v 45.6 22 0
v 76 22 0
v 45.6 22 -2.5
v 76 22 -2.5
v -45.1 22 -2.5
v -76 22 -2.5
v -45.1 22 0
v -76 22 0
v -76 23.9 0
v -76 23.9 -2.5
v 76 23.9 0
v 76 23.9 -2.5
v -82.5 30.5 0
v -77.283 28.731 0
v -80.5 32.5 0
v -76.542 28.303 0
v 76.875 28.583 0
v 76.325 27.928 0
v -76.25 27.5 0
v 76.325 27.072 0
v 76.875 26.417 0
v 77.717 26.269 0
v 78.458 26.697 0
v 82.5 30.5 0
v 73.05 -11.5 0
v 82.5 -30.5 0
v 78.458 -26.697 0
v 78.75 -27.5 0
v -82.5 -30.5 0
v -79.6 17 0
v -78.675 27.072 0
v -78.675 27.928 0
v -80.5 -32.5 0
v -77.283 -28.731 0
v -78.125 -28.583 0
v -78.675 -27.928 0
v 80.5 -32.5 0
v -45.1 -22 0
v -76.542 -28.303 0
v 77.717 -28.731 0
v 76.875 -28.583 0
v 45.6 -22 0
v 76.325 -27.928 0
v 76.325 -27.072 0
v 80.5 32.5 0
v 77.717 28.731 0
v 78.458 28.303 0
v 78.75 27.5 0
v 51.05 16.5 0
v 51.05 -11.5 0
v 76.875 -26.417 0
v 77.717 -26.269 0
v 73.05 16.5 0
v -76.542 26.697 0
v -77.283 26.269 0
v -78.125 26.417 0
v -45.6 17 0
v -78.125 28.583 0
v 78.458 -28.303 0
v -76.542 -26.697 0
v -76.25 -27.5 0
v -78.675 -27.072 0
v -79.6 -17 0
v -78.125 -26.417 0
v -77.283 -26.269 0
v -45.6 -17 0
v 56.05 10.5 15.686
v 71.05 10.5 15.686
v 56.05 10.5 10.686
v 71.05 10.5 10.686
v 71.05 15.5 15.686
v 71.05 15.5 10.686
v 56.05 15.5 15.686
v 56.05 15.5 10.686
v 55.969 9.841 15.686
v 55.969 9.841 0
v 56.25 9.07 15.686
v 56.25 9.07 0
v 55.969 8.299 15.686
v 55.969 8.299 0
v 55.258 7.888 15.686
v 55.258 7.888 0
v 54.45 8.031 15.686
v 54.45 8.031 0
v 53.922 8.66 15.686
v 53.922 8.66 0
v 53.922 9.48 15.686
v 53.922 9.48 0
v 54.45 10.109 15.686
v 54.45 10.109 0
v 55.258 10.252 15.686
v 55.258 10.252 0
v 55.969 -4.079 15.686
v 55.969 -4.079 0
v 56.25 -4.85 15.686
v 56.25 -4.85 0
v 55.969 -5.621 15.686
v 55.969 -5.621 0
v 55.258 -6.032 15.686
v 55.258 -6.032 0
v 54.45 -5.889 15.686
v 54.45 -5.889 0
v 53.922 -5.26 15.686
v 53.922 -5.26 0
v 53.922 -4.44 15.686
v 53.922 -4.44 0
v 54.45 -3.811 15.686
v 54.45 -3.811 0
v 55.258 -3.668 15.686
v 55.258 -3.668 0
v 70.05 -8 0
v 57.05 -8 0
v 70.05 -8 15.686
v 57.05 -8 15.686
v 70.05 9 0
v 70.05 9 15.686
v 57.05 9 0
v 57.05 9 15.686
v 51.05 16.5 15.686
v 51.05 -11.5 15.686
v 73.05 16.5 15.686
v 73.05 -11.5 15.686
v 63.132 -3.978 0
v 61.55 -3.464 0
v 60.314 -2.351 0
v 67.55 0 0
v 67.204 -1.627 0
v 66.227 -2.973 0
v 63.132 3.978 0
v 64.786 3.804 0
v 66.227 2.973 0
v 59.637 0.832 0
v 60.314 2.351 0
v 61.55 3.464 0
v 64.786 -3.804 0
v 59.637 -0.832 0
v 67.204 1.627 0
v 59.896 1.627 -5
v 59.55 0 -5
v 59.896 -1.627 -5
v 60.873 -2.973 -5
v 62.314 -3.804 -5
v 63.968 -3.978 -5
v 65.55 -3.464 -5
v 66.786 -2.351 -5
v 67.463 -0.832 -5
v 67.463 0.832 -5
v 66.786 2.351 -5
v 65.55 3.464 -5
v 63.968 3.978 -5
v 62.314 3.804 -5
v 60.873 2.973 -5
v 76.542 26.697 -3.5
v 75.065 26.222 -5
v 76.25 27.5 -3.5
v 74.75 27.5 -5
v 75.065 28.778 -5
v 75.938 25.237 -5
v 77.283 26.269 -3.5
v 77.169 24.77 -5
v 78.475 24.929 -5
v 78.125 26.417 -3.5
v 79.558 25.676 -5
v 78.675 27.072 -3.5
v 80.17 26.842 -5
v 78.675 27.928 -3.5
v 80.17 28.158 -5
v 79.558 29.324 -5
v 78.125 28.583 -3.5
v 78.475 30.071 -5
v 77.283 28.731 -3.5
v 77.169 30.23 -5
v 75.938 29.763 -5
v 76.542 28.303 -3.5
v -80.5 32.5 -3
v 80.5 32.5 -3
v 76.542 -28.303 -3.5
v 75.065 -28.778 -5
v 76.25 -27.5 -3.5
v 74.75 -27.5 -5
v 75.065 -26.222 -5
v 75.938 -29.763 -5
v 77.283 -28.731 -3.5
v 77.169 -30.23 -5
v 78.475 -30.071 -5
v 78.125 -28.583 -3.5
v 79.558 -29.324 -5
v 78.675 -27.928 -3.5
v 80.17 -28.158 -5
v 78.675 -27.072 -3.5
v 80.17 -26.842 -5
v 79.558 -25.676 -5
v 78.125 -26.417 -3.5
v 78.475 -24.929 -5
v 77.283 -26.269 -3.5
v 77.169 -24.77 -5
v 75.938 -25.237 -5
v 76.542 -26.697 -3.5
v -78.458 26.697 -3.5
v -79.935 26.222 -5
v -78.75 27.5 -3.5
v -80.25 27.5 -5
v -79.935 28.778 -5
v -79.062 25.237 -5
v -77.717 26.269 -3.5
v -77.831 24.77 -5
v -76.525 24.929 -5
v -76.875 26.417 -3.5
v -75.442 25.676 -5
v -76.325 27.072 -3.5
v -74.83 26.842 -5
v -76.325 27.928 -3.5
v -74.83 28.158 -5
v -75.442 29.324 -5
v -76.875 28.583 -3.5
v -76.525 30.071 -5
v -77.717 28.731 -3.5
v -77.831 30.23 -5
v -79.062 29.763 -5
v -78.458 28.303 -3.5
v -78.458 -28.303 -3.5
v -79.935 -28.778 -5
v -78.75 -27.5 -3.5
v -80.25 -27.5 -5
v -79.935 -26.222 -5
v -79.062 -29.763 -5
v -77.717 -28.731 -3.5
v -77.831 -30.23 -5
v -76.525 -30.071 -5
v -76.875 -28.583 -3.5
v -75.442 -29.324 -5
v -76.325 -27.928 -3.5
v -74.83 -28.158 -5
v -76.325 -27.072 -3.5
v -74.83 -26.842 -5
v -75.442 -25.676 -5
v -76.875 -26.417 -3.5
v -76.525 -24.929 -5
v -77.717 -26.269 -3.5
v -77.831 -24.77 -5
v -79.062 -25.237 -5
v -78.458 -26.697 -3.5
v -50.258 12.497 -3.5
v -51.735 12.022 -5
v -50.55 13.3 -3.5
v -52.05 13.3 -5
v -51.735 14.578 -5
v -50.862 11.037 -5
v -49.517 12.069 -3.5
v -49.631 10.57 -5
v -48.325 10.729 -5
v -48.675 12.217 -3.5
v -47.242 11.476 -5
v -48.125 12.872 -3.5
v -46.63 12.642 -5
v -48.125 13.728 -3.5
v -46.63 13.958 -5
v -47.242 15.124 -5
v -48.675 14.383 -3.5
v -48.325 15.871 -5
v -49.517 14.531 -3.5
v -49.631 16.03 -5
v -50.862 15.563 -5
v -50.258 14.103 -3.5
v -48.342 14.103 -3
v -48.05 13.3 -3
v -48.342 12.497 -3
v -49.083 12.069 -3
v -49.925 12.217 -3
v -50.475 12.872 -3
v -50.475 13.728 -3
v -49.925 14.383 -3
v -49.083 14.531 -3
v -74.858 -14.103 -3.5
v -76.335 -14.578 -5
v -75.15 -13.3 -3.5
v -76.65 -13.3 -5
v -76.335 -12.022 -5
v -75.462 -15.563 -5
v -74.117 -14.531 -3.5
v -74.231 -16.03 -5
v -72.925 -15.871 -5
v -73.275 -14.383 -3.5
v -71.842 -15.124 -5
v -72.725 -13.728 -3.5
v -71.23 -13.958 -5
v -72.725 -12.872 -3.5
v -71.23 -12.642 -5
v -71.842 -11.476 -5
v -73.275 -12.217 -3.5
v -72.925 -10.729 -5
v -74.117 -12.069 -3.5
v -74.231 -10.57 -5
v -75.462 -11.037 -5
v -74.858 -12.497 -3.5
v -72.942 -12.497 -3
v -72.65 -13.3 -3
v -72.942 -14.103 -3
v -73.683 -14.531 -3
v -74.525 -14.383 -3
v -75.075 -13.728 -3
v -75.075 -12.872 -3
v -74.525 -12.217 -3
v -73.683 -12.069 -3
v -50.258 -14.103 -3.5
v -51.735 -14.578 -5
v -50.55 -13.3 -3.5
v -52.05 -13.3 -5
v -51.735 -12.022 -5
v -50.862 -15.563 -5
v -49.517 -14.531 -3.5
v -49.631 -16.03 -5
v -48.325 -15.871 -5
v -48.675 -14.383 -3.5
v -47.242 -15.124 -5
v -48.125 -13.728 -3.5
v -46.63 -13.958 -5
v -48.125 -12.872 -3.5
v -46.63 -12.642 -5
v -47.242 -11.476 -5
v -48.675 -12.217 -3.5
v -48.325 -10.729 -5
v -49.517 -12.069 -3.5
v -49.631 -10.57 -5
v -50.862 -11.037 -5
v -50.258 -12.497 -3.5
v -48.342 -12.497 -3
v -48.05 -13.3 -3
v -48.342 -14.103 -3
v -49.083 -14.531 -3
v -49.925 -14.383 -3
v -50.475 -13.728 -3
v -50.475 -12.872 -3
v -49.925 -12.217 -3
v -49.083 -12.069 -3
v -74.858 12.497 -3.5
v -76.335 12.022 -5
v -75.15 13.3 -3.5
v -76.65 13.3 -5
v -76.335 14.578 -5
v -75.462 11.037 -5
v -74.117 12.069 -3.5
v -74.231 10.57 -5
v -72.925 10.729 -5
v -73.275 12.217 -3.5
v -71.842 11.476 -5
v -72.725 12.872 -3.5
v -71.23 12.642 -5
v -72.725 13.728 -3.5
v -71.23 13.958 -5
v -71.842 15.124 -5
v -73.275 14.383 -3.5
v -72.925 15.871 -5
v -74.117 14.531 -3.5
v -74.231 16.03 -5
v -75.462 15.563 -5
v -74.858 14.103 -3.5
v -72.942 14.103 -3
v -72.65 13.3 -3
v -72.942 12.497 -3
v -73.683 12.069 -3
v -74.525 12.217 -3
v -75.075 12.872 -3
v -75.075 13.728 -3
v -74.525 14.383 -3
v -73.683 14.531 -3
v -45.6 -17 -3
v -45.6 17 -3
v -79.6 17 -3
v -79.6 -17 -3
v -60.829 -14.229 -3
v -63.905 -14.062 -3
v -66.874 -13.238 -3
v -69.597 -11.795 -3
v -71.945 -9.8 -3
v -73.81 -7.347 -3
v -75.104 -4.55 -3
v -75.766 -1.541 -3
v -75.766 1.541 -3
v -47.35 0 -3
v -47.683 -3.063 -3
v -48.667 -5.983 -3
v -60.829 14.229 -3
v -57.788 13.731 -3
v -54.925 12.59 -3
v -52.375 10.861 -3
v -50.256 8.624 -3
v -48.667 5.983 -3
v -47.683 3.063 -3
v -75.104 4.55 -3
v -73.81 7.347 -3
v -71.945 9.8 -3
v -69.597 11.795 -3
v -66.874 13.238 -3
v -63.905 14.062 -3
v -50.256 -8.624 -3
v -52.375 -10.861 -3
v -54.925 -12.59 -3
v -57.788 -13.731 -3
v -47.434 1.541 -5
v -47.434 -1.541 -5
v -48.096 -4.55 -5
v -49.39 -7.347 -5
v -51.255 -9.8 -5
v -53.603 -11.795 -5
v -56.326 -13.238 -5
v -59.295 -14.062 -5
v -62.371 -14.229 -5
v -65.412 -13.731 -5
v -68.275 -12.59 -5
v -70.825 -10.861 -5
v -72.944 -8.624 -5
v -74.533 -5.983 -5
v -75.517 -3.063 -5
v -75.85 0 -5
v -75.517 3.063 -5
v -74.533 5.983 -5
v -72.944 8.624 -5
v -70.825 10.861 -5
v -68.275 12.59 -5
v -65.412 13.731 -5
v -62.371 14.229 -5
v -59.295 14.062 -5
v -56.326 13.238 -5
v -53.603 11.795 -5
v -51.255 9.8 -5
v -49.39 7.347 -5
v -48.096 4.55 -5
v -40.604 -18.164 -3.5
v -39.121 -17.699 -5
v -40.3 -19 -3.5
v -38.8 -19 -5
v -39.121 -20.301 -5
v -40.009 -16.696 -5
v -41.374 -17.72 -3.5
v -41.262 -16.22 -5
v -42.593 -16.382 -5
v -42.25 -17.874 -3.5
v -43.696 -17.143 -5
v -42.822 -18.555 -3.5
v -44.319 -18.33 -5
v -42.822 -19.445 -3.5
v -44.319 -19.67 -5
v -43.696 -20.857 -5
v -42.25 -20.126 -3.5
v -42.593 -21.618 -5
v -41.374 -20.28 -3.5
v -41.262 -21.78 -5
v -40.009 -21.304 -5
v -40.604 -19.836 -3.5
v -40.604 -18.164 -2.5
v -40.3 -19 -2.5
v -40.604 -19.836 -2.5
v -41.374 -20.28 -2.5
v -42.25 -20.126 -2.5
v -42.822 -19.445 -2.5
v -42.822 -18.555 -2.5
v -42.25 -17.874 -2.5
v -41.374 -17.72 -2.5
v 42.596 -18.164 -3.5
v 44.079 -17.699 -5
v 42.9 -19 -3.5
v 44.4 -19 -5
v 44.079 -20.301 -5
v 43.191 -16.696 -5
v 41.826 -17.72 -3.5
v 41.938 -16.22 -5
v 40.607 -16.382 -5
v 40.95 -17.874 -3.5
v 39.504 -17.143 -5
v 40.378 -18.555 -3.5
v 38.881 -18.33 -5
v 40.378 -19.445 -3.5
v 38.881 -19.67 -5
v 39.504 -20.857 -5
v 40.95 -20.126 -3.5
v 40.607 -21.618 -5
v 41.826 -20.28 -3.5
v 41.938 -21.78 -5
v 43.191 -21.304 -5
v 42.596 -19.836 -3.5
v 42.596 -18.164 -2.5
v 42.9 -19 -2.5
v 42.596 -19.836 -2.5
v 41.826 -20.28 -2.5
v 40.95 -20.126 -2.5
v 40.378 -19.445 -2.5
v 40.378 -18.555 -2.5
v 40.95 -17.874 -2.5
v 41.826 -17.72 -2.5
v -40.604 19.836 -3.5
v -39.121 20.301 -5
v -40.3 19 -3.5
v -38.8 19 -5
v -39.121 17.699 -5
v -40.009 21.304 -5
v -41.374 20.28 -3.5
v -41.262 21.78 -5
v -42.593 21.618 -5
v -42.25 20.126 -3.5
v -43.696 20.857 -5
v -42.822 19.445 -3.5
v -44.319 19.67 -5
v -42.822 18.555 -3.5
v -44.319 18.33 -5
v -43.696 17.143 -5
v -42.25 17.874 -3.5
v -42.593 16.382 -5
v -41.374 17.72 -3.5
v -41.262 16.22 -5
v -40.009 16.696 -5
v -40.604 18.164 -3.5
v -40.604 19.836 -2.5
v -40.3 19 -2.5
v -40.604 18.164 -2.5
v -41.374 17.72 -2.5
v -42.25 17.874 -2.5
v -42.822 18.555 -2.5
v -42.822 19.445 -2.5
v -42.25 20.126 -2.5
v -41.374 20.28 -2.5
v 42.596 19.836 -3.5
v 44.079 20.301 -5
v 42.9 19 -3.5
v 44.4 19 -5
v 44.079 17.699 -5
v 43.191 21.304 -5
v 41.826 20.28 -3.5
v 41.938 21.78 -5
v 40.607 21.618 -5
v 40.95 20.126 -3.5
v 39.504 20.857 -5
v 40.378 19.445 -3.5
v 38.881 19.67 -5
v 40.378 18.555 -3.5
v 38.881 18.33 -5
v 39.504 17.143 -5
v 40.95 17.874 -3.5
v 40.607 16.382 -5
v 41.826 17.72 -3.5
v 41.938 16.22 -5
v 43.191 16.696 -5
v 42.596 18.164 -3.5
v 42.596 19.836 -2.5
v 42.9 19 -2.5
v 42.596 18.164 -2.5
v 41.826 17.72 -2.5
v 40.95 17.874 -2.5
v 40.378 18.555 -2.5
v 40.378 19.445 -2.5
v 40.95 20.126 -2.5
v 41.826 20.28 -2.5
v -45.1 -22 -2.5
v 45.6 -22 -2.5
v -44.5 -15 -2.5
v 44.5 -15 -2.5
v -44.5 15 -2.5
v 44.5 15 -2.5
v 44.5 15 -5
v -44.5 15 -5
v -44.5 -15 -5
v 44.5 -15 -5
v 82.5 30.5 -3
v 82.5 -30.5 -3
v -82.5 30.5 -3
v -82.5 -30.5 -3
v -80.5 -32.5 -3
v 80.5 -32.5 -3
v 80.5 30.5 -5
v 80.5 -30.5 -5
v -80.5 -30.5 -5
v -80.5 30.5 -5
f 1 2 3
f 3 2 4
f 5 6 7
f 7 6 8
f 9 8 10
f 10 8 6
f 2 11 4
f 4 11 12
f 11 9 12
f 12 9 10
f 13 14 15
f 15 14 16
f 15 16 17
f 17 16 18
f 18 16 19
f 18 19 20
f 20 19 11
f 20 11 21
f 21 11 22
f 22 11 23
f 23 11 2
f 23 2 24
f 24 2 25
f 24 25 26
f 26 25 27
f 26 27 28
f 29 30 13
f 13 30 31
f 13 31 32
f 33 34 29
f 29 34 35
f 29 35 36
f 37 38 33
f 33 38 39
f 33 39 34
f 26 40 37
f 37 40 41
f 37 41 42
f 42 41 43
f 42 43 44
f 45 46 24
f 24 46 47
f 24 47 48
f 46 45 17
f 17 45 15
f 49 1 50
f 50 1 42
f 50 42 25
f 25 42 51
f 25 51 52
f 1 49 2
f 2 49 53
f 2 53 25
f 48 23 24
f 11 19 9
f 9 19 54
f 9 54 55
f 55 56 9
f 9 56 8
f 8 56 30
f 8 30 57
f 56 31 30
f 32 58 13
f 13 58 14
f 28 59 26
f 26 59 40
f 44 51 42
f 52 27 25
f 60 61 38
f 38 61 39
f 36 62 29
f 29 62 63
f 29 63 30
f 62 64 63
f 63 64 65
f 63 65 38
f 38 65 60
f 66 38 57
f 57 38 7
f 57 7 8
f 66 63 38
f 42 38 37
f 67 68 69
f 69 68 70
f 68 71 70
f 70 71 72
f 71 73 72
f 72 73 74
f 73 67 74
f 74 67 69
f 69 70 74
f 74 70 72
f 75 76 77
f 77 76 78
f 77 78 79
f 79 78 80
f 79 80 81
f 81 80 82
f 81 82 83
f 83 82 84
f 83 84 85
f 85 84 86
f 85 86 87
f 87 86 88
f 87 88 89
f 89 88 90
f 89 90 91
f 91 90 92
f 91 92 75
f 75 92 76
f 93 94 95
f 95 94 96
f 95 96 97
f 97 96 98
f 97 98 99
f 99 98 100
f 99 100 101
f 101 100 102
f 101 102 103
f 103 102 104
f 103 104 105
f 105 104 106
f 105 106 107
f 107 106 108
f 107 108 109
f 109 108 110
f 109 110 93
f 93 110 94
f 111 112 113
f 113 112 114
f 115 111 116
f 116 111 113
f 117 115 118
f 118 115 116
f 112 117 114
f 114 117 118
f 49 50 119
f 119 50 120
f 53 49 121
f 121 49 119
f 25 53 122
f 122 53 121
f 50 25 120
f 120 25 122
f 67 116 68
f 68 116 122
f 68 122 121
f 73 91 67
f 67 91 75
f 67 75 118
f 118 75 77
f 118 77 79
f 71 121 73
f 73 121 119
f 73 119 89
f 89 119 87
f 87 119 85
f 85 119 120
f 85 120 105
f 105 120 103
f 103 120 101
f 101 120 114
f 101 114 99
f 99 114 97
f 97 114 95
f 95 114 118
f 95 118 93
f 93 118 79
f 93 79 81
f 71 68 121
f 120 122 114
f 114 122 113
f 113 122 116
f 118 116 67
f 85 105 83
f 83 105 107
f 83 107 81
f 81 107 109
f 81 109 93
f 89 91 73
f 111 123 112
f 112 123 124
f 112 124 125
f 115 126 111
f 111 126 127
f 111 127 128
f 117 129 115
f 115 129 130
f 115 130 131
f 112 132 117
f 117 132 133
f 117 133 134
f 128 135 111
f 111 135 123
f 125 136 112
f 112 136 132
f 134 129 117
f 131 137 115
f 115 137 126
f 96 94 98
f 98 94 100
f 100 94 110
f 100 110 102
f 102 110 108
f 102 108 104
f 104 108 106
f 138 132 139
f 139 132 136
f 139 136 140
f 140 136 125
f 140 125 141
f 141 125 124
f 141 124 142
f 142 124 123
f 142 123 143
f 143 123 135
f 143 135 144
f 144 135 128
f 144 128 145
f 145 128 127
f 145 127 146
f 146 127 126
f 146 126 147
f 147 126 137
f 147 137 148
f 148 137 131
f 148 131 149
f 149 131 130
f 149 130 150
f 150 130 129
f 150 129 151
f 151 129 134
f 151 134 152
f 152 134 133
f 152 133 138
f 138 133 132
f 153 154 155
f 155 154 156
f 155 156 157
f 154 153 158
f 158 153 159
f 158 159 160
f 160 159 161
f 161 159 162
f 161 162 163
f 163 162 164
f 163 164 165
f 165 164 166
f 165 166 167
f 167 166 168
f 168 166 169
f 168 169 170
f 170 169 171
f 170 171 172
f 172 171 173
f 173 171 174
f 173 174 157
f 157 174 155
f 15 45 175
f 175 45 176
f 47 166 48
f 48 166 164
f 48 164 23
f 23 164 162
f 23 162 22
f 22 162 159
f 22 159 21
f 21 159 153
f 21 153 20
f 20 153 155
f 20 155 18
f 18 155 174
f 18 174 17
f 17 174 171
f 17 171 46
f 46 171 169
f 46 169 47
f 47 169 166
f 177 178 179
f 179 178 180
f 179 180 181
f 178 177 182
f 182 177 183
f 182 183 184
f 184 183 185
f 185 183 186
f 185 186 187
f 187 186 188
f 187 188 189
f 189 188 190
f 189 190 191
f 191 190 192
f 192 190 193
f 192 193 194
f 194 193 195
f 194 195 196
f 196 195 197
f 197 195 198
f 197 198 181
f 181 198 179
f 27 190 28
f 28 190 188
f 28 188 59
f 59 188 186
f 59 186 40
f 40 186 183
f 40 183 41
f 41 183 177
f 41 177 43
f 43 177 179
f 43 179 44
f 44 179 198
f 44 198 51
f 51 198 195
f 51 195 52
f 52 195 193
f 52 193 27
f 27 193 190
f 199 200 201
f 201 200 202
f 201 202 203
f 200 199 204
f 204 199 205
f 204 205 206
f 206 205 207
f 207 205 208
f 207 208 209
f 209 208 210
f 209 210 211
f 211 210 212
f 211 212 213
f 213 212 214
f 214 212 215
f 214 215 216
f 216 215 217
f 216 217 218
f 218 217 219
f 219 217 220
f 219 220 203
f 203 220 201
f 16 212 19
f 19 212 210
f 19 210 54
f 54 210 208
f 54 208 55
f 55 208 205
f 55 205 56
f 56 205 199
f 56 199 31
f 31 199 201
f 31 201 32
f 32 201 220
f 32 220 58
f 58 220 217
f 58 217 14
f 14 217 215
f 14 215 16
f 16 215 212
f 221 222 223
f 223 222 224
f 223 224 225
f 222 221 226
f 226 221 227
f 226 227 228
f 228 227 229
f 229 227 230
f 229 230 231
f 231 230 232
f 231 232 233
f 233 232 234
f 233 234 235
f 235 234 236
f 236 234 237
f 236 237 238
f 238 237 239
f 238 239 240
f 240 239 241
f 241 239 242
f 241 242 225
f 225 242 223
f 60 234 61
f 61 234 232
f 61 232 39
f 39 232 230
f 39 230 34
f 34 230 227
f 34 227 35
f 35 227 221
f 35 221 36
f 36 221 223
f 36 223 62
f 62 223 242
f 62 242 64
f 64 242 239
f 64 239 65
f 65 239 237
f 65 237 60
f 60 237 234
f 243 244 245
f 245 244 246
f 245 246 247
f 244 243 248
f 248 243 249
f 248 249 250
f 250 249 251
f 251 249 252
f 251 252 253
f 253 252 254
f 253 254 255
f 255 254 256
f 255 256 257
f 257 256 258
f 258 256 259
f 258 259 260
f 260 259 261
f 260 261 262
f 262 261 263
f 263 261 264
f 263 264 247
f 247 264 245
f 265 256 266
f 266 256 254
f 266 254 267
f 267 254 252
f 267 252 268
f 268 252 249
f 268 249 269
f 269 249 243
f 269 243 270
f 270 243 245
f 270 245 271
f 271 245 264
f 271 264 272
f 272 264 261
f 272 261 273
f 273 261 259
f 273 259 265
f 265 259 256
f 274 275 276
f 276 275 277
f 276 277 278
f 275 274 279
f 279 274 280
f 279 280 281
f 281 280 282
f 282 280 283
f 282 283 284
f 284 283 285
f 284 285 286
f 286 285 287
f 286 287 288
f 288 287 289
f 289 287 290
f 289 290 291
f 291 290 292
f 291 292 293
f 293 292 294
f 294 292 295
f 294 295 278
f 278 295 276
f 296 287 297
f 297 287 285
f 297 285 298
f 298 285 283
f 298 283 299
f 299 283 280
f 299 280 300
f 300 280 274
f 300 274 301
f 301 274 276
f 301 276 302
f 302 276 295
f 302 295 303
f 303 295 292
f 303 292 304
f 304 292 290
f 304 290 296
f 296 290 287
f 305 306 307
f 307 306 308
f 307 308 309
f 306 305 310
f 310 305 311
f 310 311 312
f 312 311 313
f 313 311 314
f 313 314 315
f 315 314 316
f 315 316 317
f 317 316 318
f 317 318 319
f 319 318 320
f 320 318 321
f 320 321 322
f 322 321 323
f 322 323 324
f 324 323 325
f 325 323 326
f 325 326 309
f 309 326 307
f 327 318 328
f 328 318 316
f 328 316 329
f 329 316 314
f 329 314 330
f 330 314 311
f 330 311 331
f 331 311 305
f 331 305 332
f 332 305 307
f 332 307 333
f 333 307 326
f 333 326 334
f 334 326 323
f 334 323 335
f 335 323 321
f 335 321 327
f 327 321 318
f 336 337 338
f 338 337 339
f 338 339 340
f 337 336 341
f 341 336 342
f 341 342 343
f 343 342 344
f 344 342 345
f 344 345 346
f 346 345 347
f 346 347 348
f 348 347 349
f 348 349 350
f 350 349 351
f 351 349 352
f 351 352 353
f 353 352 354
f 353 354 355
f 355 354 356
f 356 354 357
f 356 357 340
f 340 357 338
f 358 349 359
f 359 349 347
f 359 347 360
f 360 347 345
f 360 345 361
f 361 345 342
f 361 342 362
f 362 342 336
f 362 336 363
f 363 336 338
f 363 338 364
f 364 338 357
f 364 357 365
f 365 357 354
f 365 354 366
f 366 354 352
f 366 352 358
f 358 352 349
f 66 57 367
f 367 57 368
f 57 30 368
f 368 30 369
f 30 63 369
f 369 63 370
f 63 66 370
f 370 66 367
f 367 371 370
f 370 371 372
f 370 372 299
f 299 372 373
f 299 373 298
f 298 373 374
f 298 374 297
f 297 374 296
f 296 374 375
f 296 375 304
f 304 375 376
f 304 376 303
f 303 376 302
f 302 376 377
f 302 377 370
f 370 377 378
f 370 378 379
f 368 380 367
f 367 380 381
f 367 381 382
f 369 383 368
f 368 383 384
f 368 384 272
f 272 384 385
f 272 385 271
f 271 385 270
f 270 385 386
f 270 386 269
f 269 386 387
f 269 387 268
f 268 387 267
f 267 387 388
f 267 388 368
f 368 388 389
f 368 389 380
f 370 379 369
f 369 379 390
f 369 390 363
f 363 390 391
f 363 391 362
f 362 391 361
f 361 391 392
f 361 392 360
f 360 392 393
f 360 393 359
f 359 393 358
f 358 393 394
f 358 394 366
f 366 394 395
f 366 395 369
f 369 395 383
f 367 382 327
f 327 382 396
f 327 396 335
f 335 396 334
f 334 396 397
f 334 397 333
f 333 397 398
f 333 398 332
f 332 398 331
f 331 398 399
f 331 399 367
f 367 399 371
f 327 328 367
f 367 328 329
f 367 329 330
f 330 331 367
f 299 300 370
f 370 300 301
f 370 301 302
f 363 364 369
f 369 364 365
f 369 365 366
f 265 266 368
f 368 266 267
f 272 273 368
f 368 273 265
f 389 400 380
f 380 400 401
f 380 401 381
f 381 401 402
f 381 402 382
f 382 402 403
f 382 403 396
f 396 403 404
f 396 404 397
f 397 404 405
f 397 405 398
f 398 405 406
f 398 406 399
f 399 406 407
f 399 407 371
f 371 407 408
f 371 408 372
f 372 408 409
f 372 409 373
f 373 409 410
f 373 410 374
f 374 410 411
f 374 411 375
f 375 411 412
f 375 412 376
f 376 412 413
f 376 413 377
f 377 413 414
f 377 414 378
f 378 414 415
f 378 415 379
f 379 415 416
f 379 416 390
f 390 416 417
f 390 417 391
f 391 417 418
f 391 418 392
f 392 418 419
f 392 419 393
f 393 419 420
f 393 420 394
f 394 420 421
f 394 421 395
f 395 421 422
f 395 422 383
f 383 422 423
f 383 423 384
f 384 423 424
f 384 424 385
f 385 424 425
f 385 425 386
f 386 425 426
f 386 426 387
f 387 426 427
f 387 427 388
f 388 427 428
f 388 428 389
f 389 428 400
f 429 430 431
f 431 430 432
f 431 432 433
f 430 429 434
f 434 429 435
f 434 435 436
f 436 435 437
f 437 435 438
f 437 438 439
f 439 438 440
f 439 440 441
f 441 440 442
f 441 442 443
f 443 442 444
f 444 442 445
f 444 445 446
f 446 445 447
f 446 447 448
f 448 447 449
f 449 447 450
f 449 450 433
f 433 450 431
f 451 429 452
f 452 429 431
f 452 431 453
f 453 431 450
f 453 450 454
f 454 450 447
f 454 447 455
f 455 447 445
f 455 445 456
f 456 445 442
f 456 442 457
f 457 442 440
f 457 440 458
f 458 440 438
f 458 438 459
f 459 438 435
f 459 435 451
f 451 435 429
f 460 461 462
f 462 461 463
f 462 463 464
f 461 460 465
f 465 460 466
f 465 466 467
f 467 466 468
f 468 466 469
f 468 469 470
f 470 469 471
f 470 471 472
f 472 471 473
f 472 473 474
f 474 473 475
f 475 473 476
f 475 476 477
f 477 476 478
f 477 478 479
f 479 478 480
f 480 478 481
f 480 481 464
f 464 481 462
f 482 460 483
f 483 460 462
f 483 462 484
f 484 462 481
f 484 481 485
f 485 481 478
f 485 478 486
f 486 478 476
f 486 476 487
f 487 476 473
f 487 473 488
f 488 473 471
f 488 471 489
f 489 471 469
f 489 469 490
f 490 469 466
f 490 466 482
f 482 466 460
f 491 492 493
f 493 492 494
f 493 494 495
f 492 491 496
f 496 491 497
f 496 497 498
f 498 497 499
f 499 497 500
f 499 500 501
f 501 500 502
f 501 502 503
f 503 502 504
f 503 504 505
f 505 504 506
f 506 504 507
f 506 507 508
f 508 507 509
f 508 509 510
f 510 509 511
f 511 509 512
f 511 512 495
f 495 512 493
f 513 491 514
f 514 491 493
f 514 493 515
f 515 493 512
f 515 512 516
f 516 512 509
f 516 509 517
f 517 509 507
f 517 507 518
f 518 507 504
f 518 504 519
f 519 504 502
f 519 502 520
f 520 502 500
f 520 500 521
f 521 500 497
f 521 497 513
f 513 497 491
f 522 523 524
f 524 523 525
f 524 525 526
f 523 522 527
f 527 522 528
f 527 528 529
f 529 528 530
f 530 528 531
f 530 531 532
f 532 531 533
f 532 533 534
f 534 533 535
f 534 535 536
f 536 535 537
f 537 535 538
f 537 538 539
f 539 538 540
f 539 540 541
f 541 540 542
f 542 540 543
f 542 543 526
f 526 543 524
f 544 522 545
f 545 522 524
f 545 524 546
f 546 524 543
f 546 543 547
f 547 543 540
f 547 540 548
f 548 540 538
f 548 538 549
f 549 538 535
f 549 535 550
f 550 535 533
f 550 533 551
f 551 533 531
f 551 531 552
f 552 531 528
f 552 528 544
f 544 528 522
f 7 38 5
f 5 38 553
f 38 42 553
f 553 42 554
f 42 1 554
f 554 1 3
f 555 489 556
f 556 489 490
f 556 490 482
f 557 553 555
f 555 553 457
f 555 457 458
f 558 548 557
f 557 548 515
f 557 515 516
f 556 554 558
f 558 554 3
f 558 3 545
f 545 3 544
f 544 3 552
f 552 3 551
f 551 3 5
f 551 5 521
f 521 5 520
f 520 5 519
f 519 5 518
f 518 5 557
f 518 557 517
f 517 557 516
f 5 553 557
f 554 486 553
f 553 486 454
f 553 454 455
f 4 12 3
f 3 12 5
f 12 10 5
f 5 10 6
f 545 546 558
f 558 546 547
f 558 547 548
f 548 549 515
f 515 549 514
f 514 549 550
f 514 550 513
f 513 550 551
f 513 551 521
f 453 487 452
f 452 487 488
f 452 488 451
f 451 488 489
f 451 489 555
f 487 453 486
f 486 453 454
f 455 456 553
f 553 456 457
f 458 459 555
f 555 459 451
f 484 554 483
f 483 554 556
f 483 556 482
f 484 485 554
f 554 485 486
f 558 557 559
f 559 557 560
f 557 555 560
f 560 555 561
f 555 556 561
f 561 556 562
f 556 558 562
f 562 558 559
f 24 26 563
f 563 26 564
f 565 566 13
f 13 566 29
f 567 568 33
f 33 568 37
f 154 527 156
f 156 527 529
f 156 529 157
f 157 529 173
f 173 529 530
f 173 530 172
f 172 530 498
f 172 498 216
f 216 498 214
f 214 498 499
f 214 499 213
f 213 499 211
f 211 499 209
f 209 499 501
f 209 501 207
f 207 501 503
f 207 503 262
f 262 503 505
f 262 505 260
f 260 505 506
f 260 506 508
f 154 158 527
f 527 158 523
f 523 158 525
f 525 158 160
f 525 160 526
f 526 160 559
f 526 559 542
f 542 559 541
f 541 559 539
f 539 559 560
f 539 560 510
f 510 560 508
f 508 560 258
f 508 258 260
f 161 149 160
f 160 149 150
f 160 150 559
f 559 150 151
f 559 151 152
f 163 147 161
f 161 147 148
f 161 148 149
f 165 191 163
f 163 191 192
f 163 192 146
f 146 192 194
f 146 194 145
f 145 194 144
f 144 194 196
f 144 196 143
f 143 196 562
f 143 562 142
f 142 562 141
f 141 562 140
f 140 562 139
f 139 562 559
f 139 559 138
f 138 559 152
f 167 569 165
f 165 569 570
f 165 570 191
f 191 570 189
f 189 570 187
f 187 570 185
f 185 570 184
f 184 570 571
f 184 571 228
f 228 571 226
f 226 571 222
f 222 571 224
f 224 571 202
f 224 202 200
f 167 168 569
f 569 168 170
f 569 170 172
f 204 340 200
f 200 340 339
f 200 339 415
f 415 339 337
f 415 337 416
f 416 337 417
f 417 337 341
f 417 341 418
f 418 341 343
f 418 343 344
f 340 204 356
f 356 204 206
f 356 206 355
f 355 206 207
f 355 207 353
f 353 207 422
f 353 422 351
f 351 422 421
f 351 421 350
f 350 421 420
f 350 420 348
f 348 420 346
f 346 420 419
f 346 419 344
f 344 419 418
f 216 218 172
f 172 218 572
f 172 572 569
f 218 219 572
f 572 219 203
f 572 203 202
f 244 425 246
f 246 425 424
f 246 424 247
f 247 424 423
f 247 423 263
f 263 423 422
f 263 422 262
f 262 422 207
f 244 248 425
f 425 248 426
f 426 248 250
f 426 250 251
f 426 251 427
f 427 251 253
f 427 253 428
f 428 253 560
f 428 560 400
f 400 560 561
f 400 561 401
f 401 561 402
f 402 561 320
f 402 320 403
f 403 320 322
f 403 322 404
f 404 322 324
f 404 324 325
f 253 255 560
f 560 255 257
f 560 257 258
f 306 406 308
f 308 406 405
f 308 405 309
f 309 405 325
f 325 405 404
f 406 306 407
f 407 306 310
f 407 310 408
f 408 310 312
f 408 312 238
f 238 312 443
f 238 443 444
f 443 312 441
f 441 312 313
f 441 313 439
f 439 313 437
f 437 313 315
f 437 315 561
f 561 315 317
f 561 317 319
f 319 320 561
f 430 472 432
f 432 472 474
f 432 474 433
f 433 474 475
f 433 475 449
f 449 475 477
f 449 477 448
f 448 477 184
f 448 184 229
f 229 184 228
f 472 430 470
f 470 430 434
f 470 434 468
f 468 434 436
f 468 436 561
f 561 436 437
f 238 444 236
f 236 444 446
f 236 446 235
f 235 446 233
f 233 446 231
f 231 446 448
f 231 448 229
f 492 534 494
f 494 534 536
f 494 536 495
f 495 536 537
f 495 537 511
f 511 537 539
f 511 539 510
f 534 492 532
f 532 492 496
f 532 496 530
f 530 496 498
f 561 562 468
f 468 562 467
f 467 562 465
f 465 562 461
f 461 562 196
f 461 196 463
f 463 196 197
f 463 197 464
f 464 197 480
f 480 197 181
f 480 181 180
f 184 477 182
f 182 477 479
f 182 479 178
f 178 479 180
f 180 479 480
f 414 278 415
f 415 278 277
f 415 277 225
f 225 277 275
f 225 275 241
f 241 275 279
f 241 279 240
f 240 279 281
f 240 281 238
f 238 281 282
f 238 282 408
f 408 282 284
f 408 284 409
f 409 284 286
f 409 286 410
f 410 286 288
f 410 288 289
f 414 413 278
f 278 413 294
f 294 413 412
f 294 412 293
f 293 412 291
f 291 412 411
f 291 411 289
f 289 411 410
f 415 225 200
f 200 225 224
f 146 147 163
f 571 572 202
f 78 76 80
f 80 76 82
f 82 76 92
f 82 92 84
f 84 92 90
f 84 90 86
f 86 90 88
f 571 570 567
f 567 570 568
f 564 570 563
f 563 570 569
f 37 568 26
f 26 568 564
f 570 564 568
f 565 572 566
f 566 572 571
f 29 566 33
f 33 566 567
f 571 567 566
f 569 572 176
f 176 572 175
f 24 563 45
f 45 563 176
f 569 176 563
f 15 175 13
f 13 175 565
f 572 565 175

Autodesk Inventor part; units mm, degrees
ref_plane "YZ Plane" through (0, 0, 0) normal (1, 0, 0) x (0, 1, 0)
ref_plane "XZ Plane" through (0, 0, 0) normal (0, 1, 0) x (-1, 0, 0)
ref_plane "XY Plane" through (0, 0, 0) normal (0, 0, 1) x (1, 0, 0)
sketch "Esquisse1" plane through (0, 0, 0) normal (0, 0, 1) x (1, 0, 0)
  line L0 (-82.5, -32.5) -> (82.5, -32.5)
  line L1 (82.5, -32.5) -> (82.5, 32.5)
  line L2 (82.5, 32.5) -> (-82.5, 32.5)
  line L3 (-82.5, 32.5) -> (-82.5, -32.5)
  line L4 (-115.5, 0) -> (115.5, 0) projected
  line L5 (0, -45.5) -> (0, 45.5) projected
  line L6 (-44.5, 15) -> (44.5, 15)
  line L7 (44.5, 15) -> (44.5, -15)
  line L8 (44.5, -15) -> (-44.5, -15)
  line L9 (-44.5, -15) -> (-44.5, 15)
  line L10 (-44.6, 22) -> (44.6, 22)
  line L11 (44.6, 22) -> (44.6, -22)
  line L12 (44.6, -22) -> (-44.6, -22)
  line L13 (-44.6, -22) -> (-44.6, 22)
  circle A0 centre (-41.6, 19) radius 1.3
  circle A1 centre (41.6, 19) radius 1.3
  circle A2 centre (-41.6, -19) radius 1.3
  circle A3 centre (41.6, -19) radius 1.3
  line L14 (-45.6, -17) -> (-79.6, -17)
  line L15 (-79.6, -17) -> (-79.6, 17)
  line L16 (-79.6, 17) -> (-45.6, 17)
  line L17 (-45.6, 17) -> (-45.6, -17)
  circle A4 centre (-49.3, -13.3) radius 1.25
  circle A5 centre (-49.3, 13.3) radius 1.25
  circle A6 centre (-73.9, -13.3) radius 1.25
  circle A7 centre (-73.9, 13.3) radius 1.25
  circle A8 centre (-61.6, 0) radius 14.25
  circle A9 centre (-77.5, -27.5) radius 1.25
  circle A10 centre (77.5, -27.5) radius 1.25
  circle A11 centre (-77.5, 27.5) radius 1.25
  circle A12 centre (77.5, 27.5) radius 1.25
  circle A13 centre (63.55, 0) radius 4
  line L18 (-76, 23.9) -> (76, 23.9)
  line L19 (76, 23.9) -> (76, 22)
  line L20 (76, 22) -> (-76, 22)
  line L21 (-76, 22) -> (-76, 23.9)
  line L22 (82.5, 32.5) -> (-82.5, 32.5)
  line L23 (-82.5, 32.5) -> (-82.5, 30.5)
  line L24 (-82.5, 30.5) -> (82.5, 30.5)
  line L25 (82.5, 30.5) -> (82.5, 32.5)
  line L26 (-44.6, -22) -> (-45.1, -22)
  line L27 (-45.1, -22) -> (-45.1, 22)
  line L28 (-45.1, 22) -> (-44.6, 22)
  line L29 (-44.6, 22) -> (-44.6, -22)
  line L30 (44.6, -22) -> (45.6, -22)
  line L31 (45.6, -22) -> (45.6, 22)
  line L32 (45.6, 22) -> (44.6, 22)
  line L33 (44.6, 22) -> (44.6, -22)
  point P0 (0, 0)
  point P1 (82.5, 30.5)
  point P2 (-44.6, 0)
  point P3 (-45.1, 0)
  dimension "d0" = 165
  dimension "d1" = 65
  dimension "d2" = 30
  dimension "d3" = 89
  dimension "d4" = 89.2
  dimension "d6" = 2.6
  dimension "d31" = 34
  dimension "d32" = 34
  dimension "d33" = 1
  dimension "d34" = 2.5
  dimension "d35" = 3.7
  dimension "d36" = 3.7
  dimension "d39" = 24.6
  dimension "d44" = 28.5
  dimension "d45" = 16
  dimension "d53" = 2.5
  dimension "d54" = 5
  dimension "d55" = 5
  dimension "d58" = 155
  dimension "d68" = 8
  dimension "d116" = 44.6
  dimension "d119" = 63.55
  dimension "d122" = 22
  dimension "d124" = 44.6
  dimension "d125" = 22
  dimension "d127" = 152
  dimension "d128" = 1.9
  dimension "d131" = 2
  dimension "d134" = 41.6
  dimension "d135" = 19
  dimension "d136" = 82.5
  dimension "d137" = 30.5
  dimension "d138" = 44.6
  dimension "d139" = 22
  dimension "d140" = 41.6
  dimension "d141" = 44.6
  dimension "d142" = 22
  dimension "d143" = 0.5
  dimension "d144" = 1
extrude "Extrusion1" add sketch "Esquisse1" against normal blind 5 contours L3 L4 L15 L14 L17 L27 L26 L12 L5 L0 | L5 L12 L30 L31 L4 A13 L1 L0 | L3 L24 L5 L18 L21 L20 L27 L4 L17 L16 L15 | L12 L13 L4 L9 L8 L5 | L5 L8 L7 L4 L11 L12 | L3 L2 L5 L24 | L15 L16 L17 L4 A8 | L4 A8 L17 L14 L15 | L4 A13 L31 L20 L19 L18 L5 L24 L1 | L11 L4 L31 L30 | L26 L27 L4 L13 | L5 L2 L1 L24 | A8 L4 | L4 A8 | A13 L4 | L4 A13 | L11 L20 L31 L4 | L4 L7 L6 L5 L10 L11 | L13 L10 L5 L6 L9 L4 | L4 L27 L20 L13 | L18 L19 L20 L10 L5 | L5 L10 L20 L21 L18 | A4 | A5 | A6 | A7 | A9 | A10 | A11 | A12
extrude "Extrusion2" cut sketch "Esquisse1" against normal blind 2.5 contours L12 L13 L4 L9 L8 L5 | L5 L8 L7 L4 L11 L12 | L8 L9 L4 L5 | L5 L4 L7 L8 | L11 L4 L31 L30 | L26 L27 L4 L13 | L5 L6 L7 L4 | L4 L9 L6 L5 | L11 L20 L31 L4 | L4 L7 L6 L5 L10 L11 | L13 L10 L5 L6 L9 L4 | L4 L27 L20 L13
chamfer "Chanfrein1" distance 1.5 angle 45 4 edges at (40.3, 19, -5) (-42.9, 19, -5) (40.3, -19, -5) (-42.9, -19, -5)
extrude "Extrusion3" cut sketch "Esquisse1" against normal through all contours A8 L4 | L4 A8 | A4 | A5 | A6 | A7
extrude "Extrusion4" cut sketch "Esquisse1" against normal blind 3 contours L15 L16 L17 L4 A8 | L4 A8 L17 L14 L15
chamfer "Chanfrein2" distance 1.5 angle 45 4 edges at (-75.15, 13.3, -5) (-50.55, -13.3, -5) (-75.15, -13.3, -5) (-50.55, 13.3, -5)
extrude "Extrusion5" cut sketch "Esquisse1" against normal through all contours A9 | A10 | A11 | A12
chamfer "Chanfrein3" distance 1.5 angle 45 4 edges at (-78.75, -27.5, -5) (-78.75, 27.5, -5) (76.25, -27.5, -5) (76.25, 27.5, -5)
extrude "Extrusion6" cut sketch "Esquisse1" against normal through all contours A13 L4 | L4 A13
sketch "Esquisse3" plane through (0, 0, 0) normal (0, 0, 1) x (1, 0, 0)
  line L0 (70.05, -8) -> (57.05, -8)
  line L1 (57.05, -8) -> (57.05, 9)
  line L2 (57.05, 9) -> (70.05, 9)
  line L3 (70.05, 9) -> (70.05, -8)
  circle A0 centre (63.55, 0) radius 4 projected
  line L4 (-115.5, 0) -> (115.5, 0) projected
  line L5 (73.05, -11.5) -> (51.05, -11.5)
  line L6 (51.05, -11.5) -> (51.05, 16.5)
  line L7 (51.05, 16.5) -> (73.05, 16.5)
  line L8 (73.05, 16.5) -> (73.05, -11.5)
  line L9 (63.55, -11.5) -> (63.55, 16.9619)
  circle A1 centre (55.05, -4.85) radius 1.2
  circle A2 centre (55.05, 9.07) radius 1.2
  point P0 (0, 0)
  dimension "d77" = 13
  dimension "d78" = 17
  dimension "d79" = 6.5
  dimension "d80" = 11.5
  dimension "d83" = 22
  dimension "d84" = 28
  dimension "d86" = 8
  dimension "d97" = 6
  dimension "d98" = 2.4
  dimension "d99" = 9.5
  dimension "d100" = 16.9619
  dimension "d101" = 9.07
  dimension "d102" = 4.85
  dimension "d103" = 18
  dimension "d104" = 18
extrude "Extrusion7" add sketch "Esquisse3" along normal blind 15.686 contours L3 L4 L8 L5 L9 L0 | L9 L5 L6 L4 L1 L0 | L3 L2 L9 L7 L8 L4 | L4 L6 L7 L9 L2 L1
sketch "Esquisse4" plane through (0, 0, 15.686) normal (0, 0, 1) x (1, 0, 0)
  line L0 (71.05, 15.5) -> (56.05, 15.5)
  line L1 (56.05, 15.5) -> (56.05, 10.5)
  line L2 (56.05, 10.5) -> (71.05, 10.5)
  line L3 (71.05, 10.5) -> (71.05, 15.5)
  line L4 (73.05, -11.5) -> (73.05, 16.5) projected
  line L5 (73.05, 16.5) -> (51.05, 16.5) projected
  line L6 (51.05, 16.5) -> (51.05, -11.5) projected
  point P0 (0, 0)
  dimension "d106" = 2
  dimension "d107" = 1
  dimension "d108" = 5
  dimension "d109" = 5
extrude "Extrusion8" cut sketch "Esquisse4" against normal blind 5
extrude "Extrusion10" cut sketch "Esquisse1" against normal blind 2.5 contours L18 L19 L20 L10 L5 | L5 L10 L20 L21 L18
chamfer "Chanfrein4" distance 2 angle 45 8 edges at (0, -32.5, -5) (82.5, 0, -5) (0, 32.5, -5) (-82.5, 0, -5) (82.5, -32.5, -2.5) (82.5, 32.5, -2.5) (-82.5, 32.5, -2.5) (-82.5, -32.5, -2.5)
properties part number "face_frontale" material "PVC, non plastifié"
